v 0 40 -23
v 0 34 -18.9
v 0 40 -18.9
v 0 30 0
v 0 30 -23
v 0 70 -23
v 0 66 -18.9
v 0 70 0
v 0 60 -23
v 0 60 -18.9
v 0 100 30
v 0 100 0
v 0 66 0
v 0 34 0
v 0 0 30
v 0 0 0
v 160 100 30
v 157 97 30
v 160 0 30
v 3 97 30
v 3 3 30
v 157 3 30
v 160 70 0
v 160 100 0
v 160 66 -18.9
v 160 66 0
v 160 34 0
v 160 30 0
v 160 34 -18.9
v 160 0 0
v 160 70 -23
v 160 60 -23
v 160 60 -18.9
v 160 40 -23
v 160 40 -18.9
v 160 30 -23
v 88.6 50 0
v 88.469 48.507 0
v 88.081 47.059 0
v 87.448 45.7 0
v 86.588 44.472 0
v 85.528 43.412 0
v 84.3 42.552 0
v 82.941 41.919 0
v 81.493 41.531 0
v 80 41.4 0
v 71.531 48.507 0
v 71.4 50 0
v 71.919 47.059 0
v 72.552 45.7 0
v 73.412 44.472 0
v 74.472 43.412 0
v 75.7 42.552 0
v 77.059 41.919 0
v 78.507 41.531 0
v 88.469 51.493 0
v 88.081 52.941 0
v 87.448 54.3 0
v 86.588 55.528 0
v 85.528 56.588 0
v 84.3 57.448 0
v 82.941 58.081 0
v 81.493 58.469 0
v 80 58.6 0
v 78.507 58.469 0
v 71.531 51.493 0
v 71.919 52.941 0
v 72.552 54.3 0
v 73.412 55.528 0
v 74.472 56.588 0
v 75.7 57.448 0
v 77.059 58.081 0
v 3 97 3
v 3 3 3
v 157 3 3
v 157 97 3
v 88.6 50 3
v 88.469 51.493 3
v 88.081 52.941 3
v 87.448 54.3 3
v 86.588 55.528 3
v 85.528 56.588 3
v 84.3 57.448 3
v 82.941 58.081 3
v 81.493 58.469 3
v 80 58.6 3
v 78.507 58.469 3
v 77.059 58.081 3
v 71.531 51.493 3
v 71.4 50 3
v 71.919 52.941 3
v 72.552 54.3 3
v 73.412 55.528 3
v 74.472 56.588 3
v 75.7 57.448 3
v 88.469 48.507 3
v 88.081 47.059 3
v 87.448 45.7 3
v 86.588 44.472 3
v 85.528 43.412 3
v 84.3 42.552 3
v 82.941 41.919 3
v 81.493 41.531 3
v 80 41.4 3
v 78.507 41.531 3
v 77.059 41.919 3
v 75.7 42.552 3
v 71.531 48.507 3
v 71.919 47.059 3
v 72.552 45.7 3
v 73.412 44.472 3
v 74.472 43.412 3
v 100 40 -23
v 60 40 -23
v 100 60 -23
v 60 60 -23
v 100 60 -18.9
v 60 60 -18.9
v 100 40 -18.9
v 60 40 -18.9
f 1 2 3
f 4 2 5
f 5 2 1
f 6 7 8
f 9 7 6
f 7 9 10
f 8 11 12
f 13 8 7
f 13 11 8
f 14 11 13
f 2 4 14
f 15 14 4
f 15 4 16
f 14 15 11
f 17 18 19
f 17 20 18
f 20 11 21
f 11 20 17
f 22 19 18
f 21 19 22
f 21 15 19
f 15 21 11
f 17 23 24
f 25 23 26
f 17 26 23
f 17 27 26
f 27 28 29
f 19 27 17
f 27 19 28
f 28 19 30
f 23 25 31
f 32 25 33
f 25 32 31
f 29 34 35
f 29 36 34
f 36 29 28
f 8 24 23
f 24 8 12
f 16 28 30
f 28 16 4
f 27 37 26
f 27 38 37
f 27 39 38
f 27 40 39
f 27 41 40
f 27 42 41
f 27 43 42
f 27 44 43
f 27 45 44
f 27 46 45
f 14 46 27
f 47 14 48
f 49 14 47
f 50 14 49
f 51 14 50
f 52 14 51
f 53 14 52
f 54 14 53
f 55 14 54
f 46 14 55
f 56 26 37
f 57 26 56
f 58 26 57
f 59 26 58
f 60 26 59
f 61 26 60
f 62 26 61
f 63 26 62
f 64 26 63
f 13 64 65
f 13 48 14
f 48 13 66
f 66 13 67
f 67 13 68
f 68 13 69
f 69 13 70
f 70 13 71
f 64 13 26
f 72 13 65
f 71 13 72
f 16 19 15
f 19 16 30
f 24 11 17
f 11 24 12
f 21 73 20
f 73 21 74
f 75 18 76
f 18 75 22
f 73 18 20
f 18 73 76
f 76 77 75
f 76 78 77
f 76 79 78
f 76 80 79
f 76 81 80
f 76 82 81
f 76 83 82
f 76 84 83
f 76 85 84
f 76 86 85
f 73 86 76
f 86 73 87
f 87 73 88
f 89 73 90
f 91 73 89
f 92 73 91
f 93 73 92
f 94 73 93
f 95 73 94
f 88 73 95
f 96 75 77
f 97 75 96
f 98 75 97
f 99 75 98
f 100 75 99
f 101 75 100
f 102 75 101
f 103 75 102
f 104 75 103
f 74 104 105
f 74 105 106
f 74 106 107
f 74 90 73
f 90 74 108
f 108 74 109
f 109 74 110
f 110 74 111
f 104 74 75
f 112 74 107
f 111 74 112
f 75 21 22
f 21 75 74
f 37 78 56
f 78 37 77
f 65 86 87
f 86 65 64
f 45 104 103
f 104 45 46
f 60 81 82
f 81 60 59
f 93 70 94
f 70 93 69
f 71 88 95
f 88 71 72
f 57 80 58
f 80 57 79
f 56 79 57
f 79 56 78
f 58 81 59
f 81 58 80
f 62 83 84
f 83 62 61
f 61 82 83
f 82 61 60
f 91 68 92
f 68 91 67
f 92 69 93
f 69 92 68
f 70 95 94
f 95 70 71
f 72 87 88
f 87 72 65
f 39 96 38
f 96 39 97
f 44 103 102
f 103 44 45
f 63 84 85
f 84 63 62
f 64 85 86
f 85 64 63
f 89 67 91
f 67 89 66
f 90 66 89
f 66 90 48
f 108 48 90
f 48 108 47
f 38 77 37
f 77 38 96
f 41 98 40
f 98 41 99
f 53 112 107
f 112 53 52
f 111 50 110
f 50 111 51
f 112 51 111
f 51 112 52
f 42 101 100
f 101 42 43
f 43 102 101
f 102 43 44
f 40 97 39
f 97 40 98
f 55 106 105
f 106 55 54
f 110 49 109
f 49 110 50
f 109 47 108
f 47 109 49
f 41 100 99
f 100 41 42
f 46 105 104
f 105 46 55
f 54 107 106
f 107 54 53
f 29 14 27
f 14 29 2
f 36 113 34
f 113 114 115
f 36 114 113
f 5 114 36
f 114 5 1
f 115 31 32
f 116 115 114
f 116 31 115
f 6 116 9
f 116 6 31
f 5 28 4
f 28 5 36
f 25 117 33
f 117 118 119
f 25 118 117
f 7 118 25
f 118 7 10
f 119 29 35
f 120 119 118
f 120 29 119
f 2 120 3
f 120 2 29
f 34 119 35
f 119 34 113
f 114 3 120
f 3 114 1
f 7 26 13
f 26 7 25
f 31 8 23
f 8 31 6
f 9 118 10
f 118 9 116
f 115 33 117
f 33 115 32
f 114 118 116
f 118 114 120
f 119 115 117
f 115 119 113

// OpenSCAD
// slider is 30 wide, make opening 32
//slider is 17.5 high, make opening 19


difference() {
    cube([160,100,30]);
    translate([3,3,3])
    cube([154,94,100]);
    translate([80,50,-1])
    cylinder(h=10, d1=17.2,d2=17.2, $fn=36);
}
translate([0,30,-23])
cube([160,4,23.1]);

translate([0,30,-23])
cube([160,10,4.1]);

translate([0,66,-23])
cube([160,4,23.1]);

translate([0,60,-23])
cube([160,10,4.1]);

translate([60,32,-23])
cube([40,36,4.1]);


//50 - 16-4   30
//50 + 16 = 66
